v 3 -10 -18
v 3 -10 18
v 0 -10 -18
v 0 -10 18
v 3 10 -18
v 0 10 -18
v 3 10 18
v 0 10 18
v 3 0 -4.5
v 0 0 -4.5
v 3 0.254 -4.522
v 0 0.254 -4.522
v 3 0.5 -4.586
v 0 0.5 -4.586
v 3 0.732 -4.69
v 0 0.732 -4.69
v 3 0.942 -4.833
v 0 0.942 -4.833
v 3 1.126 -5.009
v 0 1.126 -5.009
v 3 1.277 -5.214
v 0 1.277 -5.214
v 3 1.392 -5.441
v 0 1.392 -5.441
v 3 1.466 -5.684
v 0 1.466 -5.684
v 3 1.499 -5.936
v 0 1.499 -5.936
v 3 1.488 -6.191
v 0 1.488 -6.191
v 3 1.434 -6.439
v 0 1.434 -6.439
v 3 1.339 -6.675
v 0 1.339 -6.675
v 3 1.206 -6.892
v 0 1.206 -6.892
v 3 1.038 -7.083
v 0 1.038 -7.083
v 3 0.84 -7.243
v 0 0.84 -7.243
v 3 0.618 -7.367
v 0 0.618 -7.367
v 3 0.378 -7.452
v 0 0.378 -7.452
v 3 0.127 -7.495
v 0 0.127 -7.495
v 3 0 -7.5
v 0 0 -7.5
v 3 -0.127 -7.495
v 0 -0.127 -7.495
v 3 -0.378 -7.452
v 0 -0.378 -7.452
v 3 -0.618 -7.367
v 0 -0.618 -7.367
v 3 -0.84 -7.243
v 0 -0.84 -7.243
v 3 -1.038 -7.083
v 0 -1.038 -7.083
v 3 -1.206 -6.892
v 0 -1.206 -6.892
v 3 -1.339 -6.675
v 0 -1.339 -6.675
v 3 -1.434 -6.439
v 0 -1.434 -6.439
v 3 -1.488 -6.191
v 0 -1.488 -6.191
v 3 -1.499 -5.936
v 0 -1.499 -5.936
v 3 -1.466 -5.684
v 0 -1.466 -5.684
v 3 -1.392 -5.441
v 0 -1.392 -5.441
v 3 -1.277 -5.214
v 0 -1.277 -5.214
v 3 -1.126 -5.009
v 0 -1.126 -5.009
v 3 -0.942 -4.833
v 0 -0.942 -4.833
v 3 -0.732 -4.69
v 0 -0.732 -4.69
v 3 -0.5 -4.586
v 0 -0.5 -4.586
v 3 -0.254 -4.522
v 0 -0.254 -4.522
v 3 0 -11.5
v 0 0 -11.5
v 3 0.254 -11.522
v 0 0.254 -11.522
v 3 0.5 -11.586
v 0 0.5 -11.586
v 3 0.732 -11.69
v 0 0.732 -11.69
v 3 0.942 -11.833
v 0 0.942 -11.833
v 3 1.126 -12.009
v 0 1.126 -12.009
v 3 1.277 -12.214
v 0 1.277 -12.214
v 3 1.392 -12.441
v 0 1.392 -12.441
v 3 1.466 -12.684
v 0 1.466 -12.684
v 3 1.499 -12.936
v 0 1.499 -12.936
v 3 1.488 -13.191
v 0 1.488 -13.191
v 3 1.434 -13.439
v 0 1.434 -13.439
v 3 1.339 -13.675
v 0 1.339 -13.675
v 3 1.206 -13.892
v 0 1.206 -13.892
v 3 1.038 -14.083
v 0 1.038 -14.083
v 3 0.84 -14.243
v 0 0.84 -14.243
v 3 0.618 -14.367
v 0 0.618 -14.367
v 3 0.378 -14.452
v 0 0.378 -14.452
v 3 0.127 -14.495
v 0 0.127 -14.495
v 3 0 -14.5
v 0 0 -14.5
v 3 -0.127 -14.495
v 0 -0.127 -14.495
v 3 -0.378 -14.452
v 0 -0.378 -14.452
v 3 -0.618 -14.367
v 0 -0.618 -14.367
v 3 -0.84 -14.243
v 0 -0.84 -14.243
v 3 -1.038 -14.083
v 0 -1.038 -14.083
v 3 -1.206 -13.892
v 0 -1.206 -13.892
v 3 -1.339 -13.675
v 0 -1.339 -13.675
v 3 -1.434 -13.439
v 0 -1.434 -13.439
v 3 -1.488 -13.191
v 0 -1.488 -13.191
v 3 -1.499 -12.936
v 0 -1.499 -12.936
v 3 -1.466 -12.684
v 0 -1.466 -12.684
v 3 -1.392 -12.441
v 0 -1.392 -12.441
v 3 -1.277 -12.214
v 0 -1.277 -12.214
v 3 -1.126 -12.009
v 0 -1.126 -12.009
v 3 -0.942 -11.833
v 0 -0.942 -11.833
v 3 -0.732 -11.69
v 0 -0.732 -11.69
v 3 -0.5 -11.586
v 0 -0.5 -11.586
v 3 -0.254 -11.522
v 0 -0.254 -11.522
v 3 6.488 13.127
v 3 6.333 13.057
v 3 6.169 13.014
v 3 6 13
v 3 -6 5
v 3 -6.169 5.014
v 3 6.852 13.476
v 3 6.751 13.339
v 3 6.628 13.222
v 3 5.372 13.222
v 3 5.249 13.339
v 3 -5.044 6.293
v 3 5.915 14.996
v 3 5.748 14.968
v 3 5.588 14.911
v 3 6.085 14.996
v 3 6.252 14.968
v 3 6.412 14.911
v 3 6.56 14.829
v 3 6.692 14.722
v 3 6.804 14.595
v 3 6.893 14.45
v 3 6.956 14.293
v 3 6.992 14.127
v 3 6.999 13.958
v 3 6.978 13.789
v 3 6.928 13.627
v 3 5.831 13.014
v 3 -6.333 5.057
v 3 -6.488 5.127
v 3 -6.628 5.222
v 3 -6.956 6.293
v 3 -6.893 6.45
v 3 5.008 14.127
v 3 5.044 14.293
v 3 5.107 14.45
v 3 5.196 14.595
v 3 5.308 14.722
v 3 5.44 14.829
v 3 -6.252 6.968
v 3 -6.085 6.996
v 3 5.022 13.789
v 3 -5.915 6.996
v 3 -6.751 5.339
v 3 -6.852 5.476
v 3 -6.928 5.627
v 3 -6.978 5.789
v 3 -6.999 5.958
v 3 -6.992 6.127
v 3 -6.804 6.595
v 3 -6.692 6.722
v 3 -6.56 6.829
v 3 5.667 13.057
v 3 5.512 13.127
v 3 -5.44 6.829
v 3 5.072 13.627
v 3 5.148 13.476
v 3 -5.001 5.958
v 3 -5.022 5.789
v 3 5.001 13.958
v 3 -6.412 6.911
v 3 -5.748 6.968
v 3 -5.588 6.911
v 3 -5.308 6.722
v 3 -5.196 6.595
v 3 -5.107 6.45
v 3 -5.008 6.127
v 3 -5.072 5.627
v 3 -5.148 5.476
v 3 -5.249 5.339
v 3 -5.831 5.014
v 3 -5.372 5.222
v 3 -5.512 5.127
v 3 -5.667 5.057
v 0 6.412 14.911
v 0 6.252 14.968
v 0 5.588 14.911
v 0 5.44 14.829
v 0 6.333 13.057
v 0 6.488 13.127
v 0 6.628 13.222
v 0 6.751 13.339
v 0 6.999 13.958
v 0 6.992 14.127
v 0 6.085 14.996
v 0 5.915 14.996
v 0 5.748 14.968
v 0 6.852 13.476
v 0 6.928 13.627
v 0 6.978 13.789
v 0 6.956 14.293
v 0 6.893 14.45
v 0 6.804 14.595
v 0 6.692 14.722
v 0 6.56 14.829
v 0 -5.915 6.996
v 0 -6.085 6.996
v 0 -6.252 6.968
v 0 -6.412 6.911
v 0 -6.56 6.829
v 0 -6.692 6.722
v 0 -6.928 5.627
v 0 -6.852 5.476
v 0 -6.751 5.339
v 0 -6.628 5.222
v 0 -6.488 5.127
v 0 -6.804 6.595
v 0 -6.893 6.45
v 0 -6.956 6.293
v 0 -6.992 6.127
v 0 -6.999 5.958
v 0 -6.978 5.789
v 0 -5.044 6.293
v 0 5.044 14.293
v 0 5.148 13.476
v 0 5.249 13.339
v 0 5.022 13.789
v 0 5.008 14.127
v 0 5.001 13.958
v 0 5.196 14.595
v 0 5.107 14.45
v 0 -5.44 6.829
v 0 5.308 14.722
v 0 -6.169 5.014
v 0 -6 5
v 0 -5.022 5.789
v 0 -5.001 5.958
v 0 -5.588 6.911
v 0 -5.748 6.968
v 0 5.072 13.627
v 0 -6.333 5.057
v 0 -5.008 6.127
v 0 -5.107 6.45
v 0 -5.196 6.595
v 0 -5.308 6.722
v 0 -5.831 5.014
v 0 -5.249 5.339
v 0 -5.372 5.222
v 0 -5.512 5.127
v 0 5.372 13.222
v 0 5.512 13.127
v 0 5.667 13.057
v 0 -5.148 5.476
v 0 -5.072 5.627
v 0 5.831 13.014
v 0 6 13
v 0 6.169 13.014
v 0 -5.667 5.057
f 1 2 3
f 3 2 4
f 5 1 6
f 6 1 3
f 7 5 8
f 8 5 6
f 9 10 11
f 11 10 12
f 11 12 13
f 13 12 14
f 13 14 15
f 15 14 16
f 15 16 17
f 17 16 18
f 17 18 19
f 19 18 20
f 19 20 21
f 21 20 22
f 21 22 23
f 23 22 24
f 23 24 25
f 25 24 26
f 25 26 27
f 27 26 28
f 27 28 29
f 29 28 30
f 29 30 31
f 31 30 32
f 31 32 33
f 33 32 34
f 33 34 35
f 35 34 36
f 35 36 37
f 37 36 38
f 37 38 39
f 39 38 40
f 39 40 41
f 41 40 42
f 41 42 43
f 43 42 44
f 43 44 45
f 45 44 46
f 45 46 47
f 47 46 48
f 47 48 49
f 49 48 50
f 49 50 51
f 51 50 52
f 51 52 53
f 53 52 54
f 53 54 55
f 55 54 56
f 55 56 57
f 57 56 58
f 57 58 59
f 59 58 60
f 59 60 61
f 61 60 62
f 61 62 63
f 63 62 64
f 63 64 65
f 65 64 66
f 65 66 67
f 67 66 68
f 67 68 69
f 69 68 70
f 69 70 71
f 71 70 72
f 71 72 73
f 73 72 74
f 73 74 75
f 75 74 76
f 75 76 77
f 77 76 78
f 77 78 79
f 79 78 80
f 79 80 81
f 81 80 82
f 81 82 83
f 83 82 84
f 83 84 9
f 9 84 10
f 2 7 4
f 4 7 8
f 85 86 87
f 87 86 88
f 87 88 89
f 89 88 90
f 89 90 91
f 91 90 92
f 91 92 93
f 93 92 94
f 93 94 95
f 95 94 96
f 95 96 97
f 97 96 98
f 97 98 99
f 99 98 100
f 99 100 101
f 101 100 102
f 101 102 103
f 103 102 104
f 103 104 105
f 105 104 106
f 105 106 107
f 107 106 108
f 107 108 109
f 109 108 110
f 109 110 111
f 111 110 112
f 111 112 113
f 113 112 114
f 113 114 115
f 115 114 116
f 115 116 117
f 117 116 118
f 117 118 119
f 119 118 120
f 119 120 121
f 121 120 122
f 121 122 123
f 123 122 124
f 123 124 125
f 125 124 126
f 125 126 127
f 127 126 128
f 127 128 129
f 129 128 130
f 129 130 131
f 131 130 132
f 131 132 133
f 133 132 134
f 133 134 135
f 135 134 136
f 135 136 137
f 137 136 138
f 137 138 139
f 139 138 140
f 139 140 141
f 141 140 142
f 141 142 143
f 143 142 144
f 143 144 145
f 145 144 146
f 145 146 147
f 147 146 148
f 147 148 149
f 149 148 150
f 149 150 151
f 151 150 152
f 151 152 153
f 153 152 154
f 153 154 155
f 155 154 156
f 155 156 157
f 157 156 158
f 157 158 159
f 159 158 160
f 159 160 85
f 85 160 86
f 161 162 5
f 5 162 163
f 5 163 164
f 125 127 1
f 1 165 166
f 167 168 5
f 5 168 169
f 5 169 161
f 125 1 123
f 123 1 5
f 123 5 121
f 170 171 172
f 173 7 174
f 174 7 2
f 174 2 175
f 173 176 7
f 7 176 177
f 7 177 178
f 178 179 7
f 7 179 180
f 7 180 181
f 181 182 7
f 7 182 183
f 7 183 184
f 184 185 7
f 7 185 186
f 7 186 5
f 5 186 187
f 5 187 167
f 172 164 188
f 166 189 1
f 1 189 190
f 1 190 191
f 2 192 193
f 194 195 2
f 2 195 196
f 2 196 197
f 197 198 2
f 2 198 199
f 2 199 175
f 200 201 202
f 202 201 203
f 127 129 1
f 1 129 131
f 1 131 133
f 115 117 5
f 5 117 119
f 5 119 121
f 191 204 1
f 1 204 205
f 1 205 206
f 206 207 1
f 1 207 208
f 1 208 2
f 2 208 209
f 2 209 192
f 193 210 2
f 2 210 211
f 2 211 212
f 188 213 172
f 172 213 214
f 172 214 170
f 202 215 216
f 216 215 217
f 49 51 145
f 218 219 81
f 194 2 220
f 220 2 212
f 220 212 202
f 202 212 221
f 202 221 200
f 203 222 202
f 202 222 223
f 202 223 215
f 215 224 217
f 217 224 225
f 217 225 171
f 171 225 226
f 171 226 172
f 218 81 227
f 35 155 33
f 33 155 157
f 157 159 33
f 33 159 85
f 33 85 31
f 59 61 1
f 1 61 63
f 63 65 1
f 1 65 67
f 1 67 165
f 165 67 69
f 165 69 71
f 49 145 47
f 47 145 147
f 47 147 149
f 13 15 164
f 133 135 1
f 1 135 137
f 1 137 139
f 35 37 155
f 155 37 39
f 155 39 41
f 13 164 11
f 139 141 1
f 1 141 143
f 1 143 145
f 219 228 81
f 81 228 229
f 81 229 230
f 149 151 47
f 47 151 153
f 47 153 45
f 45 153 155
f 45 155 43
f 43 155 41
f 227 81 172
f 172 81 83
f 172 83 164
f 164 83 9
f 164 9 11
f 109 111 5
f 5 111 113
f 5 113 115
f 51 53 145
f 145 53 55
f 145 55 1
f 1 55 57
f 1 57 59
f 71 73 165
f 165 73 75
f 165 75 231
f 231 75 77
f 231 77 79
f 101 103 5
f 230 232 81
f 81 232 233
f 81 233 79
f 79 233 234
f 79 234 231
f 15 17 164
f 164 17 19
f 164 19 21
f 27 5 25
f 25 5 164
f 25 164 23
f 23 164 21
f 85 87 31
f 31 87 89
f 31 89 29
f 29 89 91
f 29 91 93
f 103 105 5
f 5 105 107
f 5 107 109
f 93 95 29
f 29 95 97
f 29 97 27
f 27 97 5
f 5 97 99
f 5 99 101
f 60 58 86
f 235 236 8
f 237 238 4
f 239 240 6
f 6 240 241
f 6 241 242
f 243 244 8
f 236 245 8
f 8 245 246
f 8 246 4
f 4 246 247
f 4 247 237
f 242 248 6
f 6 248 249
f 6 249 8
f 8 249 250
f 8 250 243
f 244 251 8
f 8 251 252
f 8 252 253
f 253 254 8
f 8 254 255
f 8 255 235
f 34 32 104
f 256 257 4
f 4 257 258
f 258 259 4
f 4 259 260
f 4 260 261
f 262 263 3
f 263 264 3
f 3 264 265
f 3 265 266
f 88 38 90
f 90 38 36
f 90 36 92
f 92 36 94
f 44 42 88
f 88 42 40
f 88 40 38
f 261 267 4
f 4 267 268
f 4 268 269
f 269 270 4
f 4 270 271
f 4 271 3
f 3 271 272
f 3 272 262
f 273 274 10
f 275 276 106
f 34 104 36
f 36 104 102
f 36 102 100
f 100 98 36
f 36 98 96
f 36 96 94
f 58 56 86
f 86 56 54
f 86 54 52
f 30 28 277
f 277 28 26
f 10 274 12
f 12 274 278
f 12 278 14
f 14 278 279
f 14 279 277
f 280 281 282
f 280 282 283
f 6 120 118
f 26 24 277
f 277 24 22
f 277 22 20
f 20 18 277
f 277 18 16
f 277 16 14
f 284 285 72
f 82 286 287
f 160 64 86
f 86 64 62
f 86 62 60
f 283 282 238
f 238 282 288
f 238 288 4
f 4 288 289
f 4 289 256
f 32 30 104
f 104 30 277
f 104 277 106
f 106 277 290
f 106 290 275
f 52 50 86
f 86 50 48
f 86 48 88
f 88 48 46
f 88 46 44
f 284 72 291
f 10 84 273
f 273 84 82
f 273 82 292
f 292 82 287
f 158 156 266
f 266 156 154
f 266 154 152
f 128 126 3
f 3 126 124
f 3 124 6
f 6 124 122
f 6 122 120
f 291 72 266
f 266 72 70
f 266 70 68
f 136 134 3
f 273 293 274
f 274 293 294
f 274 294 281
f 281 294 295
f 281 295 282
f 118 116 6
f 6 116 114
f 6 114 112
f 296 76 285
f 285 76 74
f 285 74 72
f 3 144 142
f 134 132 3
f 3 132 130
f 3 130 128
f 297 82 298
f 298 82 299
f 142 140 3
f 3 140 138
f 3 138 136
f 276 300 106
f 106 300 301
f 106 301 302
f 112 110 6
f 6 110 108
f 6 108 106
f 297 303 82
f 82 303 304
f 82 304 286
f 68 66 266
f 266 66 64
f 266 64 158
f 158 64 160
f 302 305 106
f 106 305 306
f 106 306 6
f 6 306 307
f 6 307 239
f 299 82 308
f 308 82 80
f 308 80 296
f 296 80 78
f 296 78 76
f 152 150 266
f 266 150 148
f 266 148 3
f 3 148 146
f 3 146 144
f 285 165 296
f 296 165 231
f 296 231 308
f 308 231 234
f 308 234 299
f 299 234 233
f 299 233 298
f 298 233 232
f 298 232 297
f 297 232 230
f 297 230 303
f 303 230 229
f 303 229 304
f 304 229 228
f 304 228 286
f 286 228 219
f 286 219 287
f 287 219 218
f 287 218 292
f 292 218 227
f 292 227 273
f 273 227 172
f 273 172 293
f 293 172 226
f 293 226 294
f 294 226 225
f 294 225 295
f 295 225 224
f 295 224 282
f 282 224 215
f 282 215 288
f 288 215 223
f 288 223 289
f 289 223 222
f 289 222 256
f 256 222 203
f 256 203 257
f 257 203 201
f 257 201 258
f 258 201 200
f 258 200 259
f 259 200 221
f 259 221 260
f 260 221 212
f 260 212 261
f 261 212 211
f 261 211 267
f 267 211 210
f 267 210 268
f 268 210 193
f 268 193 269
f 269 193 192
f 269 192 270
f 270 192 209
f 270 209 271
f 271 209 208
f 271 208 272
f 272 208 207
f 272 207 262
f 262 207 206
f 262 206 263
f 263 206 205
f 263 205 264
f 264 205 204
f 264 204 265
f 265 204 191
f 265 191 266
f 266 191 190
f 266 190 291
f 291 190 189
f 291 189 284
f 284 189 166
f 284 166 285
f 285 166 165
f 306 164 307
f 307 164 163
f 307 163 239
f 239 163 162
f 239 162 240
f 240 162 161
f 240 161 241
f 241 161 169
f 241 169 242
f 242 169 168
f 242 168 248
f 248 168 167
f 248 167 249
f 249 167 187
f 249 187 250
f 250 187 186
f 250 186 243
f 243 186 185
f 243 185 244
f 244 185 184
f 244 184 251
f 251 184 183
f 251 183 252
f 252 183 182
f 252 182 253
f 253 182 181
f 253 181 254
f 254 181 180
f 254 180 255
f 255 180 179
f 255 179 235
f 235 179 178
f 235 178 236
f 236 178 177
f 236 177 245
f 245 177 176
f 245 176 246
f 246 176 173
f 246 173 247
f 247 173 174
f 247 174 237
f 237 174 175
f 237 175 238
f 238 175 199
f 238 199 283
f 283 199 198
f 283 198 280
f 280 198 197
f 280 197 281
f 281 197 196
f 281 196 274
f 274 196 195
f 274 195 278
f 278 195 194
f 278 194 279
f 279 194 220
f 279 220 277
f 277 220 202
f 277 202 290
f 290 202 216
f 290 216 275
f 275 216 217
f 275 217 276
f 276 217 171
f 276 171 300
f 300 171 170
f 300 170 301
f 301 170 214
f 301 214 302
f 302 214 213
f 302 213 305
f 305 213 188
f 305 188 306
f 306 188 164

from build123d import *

# Parameters (mm, degrees)
CROQUIS1_W              = 15
CROQUIS1_H              = 20
CROQUIS1_R              = 1.5
SALIENTE_EXTRUIR1_DEPTH = 3
CROQUIS2_R              = 1
CORTAR_EXTRUIR1_DEPTH   = 10


with BuildPart() as part:
    # Croquis1 → Saliente-Extruir1 (new body)
    with BuildSketch(Plane(origin=(0, 0, 0), x_dir=(0, 0, -1), z_dir=(1, 0, 0))):
        with Locations((-10.5, 0)):
            Rectangle(CROQUIS1_W, CROQUIS1_H)
        Polygon((0, 0), (0, -10), (18, -10), (18, 10), (0, 10), align=None)
        with Locations((6, 0)):
            Circle(CROQUIS1_R, mode=Mode.SUBTRACT)
        with Locations((13, 0)):
            Circle(CROQUIS1_R, mode=Mode.SUBTRACT)
        Polygon((-3, 10), (-3, -10), (0, -10), (0, 0), (0, 10), align=None)
    extrude(amount=SALIENTE_EXTRUIR1_DEPTH)

    # Croquis2 → Cortar-Extruir1 (cut)
    with BuildSketch(Plane(origin=(3, 0, 0), x_dir=(0, 0, -1), z_dir=(1, 0, 0))):
        with Locations((-14, 6)):
            Circle(CROQUIS2_R)
        with Locations((-6, -6)):
            Circle(CROQUIS2_R)
    extrude(amount=-CORTAR_EXTRUIR1_DEPTH, mode=Mode.SUBTRACT)


solid = part.part
